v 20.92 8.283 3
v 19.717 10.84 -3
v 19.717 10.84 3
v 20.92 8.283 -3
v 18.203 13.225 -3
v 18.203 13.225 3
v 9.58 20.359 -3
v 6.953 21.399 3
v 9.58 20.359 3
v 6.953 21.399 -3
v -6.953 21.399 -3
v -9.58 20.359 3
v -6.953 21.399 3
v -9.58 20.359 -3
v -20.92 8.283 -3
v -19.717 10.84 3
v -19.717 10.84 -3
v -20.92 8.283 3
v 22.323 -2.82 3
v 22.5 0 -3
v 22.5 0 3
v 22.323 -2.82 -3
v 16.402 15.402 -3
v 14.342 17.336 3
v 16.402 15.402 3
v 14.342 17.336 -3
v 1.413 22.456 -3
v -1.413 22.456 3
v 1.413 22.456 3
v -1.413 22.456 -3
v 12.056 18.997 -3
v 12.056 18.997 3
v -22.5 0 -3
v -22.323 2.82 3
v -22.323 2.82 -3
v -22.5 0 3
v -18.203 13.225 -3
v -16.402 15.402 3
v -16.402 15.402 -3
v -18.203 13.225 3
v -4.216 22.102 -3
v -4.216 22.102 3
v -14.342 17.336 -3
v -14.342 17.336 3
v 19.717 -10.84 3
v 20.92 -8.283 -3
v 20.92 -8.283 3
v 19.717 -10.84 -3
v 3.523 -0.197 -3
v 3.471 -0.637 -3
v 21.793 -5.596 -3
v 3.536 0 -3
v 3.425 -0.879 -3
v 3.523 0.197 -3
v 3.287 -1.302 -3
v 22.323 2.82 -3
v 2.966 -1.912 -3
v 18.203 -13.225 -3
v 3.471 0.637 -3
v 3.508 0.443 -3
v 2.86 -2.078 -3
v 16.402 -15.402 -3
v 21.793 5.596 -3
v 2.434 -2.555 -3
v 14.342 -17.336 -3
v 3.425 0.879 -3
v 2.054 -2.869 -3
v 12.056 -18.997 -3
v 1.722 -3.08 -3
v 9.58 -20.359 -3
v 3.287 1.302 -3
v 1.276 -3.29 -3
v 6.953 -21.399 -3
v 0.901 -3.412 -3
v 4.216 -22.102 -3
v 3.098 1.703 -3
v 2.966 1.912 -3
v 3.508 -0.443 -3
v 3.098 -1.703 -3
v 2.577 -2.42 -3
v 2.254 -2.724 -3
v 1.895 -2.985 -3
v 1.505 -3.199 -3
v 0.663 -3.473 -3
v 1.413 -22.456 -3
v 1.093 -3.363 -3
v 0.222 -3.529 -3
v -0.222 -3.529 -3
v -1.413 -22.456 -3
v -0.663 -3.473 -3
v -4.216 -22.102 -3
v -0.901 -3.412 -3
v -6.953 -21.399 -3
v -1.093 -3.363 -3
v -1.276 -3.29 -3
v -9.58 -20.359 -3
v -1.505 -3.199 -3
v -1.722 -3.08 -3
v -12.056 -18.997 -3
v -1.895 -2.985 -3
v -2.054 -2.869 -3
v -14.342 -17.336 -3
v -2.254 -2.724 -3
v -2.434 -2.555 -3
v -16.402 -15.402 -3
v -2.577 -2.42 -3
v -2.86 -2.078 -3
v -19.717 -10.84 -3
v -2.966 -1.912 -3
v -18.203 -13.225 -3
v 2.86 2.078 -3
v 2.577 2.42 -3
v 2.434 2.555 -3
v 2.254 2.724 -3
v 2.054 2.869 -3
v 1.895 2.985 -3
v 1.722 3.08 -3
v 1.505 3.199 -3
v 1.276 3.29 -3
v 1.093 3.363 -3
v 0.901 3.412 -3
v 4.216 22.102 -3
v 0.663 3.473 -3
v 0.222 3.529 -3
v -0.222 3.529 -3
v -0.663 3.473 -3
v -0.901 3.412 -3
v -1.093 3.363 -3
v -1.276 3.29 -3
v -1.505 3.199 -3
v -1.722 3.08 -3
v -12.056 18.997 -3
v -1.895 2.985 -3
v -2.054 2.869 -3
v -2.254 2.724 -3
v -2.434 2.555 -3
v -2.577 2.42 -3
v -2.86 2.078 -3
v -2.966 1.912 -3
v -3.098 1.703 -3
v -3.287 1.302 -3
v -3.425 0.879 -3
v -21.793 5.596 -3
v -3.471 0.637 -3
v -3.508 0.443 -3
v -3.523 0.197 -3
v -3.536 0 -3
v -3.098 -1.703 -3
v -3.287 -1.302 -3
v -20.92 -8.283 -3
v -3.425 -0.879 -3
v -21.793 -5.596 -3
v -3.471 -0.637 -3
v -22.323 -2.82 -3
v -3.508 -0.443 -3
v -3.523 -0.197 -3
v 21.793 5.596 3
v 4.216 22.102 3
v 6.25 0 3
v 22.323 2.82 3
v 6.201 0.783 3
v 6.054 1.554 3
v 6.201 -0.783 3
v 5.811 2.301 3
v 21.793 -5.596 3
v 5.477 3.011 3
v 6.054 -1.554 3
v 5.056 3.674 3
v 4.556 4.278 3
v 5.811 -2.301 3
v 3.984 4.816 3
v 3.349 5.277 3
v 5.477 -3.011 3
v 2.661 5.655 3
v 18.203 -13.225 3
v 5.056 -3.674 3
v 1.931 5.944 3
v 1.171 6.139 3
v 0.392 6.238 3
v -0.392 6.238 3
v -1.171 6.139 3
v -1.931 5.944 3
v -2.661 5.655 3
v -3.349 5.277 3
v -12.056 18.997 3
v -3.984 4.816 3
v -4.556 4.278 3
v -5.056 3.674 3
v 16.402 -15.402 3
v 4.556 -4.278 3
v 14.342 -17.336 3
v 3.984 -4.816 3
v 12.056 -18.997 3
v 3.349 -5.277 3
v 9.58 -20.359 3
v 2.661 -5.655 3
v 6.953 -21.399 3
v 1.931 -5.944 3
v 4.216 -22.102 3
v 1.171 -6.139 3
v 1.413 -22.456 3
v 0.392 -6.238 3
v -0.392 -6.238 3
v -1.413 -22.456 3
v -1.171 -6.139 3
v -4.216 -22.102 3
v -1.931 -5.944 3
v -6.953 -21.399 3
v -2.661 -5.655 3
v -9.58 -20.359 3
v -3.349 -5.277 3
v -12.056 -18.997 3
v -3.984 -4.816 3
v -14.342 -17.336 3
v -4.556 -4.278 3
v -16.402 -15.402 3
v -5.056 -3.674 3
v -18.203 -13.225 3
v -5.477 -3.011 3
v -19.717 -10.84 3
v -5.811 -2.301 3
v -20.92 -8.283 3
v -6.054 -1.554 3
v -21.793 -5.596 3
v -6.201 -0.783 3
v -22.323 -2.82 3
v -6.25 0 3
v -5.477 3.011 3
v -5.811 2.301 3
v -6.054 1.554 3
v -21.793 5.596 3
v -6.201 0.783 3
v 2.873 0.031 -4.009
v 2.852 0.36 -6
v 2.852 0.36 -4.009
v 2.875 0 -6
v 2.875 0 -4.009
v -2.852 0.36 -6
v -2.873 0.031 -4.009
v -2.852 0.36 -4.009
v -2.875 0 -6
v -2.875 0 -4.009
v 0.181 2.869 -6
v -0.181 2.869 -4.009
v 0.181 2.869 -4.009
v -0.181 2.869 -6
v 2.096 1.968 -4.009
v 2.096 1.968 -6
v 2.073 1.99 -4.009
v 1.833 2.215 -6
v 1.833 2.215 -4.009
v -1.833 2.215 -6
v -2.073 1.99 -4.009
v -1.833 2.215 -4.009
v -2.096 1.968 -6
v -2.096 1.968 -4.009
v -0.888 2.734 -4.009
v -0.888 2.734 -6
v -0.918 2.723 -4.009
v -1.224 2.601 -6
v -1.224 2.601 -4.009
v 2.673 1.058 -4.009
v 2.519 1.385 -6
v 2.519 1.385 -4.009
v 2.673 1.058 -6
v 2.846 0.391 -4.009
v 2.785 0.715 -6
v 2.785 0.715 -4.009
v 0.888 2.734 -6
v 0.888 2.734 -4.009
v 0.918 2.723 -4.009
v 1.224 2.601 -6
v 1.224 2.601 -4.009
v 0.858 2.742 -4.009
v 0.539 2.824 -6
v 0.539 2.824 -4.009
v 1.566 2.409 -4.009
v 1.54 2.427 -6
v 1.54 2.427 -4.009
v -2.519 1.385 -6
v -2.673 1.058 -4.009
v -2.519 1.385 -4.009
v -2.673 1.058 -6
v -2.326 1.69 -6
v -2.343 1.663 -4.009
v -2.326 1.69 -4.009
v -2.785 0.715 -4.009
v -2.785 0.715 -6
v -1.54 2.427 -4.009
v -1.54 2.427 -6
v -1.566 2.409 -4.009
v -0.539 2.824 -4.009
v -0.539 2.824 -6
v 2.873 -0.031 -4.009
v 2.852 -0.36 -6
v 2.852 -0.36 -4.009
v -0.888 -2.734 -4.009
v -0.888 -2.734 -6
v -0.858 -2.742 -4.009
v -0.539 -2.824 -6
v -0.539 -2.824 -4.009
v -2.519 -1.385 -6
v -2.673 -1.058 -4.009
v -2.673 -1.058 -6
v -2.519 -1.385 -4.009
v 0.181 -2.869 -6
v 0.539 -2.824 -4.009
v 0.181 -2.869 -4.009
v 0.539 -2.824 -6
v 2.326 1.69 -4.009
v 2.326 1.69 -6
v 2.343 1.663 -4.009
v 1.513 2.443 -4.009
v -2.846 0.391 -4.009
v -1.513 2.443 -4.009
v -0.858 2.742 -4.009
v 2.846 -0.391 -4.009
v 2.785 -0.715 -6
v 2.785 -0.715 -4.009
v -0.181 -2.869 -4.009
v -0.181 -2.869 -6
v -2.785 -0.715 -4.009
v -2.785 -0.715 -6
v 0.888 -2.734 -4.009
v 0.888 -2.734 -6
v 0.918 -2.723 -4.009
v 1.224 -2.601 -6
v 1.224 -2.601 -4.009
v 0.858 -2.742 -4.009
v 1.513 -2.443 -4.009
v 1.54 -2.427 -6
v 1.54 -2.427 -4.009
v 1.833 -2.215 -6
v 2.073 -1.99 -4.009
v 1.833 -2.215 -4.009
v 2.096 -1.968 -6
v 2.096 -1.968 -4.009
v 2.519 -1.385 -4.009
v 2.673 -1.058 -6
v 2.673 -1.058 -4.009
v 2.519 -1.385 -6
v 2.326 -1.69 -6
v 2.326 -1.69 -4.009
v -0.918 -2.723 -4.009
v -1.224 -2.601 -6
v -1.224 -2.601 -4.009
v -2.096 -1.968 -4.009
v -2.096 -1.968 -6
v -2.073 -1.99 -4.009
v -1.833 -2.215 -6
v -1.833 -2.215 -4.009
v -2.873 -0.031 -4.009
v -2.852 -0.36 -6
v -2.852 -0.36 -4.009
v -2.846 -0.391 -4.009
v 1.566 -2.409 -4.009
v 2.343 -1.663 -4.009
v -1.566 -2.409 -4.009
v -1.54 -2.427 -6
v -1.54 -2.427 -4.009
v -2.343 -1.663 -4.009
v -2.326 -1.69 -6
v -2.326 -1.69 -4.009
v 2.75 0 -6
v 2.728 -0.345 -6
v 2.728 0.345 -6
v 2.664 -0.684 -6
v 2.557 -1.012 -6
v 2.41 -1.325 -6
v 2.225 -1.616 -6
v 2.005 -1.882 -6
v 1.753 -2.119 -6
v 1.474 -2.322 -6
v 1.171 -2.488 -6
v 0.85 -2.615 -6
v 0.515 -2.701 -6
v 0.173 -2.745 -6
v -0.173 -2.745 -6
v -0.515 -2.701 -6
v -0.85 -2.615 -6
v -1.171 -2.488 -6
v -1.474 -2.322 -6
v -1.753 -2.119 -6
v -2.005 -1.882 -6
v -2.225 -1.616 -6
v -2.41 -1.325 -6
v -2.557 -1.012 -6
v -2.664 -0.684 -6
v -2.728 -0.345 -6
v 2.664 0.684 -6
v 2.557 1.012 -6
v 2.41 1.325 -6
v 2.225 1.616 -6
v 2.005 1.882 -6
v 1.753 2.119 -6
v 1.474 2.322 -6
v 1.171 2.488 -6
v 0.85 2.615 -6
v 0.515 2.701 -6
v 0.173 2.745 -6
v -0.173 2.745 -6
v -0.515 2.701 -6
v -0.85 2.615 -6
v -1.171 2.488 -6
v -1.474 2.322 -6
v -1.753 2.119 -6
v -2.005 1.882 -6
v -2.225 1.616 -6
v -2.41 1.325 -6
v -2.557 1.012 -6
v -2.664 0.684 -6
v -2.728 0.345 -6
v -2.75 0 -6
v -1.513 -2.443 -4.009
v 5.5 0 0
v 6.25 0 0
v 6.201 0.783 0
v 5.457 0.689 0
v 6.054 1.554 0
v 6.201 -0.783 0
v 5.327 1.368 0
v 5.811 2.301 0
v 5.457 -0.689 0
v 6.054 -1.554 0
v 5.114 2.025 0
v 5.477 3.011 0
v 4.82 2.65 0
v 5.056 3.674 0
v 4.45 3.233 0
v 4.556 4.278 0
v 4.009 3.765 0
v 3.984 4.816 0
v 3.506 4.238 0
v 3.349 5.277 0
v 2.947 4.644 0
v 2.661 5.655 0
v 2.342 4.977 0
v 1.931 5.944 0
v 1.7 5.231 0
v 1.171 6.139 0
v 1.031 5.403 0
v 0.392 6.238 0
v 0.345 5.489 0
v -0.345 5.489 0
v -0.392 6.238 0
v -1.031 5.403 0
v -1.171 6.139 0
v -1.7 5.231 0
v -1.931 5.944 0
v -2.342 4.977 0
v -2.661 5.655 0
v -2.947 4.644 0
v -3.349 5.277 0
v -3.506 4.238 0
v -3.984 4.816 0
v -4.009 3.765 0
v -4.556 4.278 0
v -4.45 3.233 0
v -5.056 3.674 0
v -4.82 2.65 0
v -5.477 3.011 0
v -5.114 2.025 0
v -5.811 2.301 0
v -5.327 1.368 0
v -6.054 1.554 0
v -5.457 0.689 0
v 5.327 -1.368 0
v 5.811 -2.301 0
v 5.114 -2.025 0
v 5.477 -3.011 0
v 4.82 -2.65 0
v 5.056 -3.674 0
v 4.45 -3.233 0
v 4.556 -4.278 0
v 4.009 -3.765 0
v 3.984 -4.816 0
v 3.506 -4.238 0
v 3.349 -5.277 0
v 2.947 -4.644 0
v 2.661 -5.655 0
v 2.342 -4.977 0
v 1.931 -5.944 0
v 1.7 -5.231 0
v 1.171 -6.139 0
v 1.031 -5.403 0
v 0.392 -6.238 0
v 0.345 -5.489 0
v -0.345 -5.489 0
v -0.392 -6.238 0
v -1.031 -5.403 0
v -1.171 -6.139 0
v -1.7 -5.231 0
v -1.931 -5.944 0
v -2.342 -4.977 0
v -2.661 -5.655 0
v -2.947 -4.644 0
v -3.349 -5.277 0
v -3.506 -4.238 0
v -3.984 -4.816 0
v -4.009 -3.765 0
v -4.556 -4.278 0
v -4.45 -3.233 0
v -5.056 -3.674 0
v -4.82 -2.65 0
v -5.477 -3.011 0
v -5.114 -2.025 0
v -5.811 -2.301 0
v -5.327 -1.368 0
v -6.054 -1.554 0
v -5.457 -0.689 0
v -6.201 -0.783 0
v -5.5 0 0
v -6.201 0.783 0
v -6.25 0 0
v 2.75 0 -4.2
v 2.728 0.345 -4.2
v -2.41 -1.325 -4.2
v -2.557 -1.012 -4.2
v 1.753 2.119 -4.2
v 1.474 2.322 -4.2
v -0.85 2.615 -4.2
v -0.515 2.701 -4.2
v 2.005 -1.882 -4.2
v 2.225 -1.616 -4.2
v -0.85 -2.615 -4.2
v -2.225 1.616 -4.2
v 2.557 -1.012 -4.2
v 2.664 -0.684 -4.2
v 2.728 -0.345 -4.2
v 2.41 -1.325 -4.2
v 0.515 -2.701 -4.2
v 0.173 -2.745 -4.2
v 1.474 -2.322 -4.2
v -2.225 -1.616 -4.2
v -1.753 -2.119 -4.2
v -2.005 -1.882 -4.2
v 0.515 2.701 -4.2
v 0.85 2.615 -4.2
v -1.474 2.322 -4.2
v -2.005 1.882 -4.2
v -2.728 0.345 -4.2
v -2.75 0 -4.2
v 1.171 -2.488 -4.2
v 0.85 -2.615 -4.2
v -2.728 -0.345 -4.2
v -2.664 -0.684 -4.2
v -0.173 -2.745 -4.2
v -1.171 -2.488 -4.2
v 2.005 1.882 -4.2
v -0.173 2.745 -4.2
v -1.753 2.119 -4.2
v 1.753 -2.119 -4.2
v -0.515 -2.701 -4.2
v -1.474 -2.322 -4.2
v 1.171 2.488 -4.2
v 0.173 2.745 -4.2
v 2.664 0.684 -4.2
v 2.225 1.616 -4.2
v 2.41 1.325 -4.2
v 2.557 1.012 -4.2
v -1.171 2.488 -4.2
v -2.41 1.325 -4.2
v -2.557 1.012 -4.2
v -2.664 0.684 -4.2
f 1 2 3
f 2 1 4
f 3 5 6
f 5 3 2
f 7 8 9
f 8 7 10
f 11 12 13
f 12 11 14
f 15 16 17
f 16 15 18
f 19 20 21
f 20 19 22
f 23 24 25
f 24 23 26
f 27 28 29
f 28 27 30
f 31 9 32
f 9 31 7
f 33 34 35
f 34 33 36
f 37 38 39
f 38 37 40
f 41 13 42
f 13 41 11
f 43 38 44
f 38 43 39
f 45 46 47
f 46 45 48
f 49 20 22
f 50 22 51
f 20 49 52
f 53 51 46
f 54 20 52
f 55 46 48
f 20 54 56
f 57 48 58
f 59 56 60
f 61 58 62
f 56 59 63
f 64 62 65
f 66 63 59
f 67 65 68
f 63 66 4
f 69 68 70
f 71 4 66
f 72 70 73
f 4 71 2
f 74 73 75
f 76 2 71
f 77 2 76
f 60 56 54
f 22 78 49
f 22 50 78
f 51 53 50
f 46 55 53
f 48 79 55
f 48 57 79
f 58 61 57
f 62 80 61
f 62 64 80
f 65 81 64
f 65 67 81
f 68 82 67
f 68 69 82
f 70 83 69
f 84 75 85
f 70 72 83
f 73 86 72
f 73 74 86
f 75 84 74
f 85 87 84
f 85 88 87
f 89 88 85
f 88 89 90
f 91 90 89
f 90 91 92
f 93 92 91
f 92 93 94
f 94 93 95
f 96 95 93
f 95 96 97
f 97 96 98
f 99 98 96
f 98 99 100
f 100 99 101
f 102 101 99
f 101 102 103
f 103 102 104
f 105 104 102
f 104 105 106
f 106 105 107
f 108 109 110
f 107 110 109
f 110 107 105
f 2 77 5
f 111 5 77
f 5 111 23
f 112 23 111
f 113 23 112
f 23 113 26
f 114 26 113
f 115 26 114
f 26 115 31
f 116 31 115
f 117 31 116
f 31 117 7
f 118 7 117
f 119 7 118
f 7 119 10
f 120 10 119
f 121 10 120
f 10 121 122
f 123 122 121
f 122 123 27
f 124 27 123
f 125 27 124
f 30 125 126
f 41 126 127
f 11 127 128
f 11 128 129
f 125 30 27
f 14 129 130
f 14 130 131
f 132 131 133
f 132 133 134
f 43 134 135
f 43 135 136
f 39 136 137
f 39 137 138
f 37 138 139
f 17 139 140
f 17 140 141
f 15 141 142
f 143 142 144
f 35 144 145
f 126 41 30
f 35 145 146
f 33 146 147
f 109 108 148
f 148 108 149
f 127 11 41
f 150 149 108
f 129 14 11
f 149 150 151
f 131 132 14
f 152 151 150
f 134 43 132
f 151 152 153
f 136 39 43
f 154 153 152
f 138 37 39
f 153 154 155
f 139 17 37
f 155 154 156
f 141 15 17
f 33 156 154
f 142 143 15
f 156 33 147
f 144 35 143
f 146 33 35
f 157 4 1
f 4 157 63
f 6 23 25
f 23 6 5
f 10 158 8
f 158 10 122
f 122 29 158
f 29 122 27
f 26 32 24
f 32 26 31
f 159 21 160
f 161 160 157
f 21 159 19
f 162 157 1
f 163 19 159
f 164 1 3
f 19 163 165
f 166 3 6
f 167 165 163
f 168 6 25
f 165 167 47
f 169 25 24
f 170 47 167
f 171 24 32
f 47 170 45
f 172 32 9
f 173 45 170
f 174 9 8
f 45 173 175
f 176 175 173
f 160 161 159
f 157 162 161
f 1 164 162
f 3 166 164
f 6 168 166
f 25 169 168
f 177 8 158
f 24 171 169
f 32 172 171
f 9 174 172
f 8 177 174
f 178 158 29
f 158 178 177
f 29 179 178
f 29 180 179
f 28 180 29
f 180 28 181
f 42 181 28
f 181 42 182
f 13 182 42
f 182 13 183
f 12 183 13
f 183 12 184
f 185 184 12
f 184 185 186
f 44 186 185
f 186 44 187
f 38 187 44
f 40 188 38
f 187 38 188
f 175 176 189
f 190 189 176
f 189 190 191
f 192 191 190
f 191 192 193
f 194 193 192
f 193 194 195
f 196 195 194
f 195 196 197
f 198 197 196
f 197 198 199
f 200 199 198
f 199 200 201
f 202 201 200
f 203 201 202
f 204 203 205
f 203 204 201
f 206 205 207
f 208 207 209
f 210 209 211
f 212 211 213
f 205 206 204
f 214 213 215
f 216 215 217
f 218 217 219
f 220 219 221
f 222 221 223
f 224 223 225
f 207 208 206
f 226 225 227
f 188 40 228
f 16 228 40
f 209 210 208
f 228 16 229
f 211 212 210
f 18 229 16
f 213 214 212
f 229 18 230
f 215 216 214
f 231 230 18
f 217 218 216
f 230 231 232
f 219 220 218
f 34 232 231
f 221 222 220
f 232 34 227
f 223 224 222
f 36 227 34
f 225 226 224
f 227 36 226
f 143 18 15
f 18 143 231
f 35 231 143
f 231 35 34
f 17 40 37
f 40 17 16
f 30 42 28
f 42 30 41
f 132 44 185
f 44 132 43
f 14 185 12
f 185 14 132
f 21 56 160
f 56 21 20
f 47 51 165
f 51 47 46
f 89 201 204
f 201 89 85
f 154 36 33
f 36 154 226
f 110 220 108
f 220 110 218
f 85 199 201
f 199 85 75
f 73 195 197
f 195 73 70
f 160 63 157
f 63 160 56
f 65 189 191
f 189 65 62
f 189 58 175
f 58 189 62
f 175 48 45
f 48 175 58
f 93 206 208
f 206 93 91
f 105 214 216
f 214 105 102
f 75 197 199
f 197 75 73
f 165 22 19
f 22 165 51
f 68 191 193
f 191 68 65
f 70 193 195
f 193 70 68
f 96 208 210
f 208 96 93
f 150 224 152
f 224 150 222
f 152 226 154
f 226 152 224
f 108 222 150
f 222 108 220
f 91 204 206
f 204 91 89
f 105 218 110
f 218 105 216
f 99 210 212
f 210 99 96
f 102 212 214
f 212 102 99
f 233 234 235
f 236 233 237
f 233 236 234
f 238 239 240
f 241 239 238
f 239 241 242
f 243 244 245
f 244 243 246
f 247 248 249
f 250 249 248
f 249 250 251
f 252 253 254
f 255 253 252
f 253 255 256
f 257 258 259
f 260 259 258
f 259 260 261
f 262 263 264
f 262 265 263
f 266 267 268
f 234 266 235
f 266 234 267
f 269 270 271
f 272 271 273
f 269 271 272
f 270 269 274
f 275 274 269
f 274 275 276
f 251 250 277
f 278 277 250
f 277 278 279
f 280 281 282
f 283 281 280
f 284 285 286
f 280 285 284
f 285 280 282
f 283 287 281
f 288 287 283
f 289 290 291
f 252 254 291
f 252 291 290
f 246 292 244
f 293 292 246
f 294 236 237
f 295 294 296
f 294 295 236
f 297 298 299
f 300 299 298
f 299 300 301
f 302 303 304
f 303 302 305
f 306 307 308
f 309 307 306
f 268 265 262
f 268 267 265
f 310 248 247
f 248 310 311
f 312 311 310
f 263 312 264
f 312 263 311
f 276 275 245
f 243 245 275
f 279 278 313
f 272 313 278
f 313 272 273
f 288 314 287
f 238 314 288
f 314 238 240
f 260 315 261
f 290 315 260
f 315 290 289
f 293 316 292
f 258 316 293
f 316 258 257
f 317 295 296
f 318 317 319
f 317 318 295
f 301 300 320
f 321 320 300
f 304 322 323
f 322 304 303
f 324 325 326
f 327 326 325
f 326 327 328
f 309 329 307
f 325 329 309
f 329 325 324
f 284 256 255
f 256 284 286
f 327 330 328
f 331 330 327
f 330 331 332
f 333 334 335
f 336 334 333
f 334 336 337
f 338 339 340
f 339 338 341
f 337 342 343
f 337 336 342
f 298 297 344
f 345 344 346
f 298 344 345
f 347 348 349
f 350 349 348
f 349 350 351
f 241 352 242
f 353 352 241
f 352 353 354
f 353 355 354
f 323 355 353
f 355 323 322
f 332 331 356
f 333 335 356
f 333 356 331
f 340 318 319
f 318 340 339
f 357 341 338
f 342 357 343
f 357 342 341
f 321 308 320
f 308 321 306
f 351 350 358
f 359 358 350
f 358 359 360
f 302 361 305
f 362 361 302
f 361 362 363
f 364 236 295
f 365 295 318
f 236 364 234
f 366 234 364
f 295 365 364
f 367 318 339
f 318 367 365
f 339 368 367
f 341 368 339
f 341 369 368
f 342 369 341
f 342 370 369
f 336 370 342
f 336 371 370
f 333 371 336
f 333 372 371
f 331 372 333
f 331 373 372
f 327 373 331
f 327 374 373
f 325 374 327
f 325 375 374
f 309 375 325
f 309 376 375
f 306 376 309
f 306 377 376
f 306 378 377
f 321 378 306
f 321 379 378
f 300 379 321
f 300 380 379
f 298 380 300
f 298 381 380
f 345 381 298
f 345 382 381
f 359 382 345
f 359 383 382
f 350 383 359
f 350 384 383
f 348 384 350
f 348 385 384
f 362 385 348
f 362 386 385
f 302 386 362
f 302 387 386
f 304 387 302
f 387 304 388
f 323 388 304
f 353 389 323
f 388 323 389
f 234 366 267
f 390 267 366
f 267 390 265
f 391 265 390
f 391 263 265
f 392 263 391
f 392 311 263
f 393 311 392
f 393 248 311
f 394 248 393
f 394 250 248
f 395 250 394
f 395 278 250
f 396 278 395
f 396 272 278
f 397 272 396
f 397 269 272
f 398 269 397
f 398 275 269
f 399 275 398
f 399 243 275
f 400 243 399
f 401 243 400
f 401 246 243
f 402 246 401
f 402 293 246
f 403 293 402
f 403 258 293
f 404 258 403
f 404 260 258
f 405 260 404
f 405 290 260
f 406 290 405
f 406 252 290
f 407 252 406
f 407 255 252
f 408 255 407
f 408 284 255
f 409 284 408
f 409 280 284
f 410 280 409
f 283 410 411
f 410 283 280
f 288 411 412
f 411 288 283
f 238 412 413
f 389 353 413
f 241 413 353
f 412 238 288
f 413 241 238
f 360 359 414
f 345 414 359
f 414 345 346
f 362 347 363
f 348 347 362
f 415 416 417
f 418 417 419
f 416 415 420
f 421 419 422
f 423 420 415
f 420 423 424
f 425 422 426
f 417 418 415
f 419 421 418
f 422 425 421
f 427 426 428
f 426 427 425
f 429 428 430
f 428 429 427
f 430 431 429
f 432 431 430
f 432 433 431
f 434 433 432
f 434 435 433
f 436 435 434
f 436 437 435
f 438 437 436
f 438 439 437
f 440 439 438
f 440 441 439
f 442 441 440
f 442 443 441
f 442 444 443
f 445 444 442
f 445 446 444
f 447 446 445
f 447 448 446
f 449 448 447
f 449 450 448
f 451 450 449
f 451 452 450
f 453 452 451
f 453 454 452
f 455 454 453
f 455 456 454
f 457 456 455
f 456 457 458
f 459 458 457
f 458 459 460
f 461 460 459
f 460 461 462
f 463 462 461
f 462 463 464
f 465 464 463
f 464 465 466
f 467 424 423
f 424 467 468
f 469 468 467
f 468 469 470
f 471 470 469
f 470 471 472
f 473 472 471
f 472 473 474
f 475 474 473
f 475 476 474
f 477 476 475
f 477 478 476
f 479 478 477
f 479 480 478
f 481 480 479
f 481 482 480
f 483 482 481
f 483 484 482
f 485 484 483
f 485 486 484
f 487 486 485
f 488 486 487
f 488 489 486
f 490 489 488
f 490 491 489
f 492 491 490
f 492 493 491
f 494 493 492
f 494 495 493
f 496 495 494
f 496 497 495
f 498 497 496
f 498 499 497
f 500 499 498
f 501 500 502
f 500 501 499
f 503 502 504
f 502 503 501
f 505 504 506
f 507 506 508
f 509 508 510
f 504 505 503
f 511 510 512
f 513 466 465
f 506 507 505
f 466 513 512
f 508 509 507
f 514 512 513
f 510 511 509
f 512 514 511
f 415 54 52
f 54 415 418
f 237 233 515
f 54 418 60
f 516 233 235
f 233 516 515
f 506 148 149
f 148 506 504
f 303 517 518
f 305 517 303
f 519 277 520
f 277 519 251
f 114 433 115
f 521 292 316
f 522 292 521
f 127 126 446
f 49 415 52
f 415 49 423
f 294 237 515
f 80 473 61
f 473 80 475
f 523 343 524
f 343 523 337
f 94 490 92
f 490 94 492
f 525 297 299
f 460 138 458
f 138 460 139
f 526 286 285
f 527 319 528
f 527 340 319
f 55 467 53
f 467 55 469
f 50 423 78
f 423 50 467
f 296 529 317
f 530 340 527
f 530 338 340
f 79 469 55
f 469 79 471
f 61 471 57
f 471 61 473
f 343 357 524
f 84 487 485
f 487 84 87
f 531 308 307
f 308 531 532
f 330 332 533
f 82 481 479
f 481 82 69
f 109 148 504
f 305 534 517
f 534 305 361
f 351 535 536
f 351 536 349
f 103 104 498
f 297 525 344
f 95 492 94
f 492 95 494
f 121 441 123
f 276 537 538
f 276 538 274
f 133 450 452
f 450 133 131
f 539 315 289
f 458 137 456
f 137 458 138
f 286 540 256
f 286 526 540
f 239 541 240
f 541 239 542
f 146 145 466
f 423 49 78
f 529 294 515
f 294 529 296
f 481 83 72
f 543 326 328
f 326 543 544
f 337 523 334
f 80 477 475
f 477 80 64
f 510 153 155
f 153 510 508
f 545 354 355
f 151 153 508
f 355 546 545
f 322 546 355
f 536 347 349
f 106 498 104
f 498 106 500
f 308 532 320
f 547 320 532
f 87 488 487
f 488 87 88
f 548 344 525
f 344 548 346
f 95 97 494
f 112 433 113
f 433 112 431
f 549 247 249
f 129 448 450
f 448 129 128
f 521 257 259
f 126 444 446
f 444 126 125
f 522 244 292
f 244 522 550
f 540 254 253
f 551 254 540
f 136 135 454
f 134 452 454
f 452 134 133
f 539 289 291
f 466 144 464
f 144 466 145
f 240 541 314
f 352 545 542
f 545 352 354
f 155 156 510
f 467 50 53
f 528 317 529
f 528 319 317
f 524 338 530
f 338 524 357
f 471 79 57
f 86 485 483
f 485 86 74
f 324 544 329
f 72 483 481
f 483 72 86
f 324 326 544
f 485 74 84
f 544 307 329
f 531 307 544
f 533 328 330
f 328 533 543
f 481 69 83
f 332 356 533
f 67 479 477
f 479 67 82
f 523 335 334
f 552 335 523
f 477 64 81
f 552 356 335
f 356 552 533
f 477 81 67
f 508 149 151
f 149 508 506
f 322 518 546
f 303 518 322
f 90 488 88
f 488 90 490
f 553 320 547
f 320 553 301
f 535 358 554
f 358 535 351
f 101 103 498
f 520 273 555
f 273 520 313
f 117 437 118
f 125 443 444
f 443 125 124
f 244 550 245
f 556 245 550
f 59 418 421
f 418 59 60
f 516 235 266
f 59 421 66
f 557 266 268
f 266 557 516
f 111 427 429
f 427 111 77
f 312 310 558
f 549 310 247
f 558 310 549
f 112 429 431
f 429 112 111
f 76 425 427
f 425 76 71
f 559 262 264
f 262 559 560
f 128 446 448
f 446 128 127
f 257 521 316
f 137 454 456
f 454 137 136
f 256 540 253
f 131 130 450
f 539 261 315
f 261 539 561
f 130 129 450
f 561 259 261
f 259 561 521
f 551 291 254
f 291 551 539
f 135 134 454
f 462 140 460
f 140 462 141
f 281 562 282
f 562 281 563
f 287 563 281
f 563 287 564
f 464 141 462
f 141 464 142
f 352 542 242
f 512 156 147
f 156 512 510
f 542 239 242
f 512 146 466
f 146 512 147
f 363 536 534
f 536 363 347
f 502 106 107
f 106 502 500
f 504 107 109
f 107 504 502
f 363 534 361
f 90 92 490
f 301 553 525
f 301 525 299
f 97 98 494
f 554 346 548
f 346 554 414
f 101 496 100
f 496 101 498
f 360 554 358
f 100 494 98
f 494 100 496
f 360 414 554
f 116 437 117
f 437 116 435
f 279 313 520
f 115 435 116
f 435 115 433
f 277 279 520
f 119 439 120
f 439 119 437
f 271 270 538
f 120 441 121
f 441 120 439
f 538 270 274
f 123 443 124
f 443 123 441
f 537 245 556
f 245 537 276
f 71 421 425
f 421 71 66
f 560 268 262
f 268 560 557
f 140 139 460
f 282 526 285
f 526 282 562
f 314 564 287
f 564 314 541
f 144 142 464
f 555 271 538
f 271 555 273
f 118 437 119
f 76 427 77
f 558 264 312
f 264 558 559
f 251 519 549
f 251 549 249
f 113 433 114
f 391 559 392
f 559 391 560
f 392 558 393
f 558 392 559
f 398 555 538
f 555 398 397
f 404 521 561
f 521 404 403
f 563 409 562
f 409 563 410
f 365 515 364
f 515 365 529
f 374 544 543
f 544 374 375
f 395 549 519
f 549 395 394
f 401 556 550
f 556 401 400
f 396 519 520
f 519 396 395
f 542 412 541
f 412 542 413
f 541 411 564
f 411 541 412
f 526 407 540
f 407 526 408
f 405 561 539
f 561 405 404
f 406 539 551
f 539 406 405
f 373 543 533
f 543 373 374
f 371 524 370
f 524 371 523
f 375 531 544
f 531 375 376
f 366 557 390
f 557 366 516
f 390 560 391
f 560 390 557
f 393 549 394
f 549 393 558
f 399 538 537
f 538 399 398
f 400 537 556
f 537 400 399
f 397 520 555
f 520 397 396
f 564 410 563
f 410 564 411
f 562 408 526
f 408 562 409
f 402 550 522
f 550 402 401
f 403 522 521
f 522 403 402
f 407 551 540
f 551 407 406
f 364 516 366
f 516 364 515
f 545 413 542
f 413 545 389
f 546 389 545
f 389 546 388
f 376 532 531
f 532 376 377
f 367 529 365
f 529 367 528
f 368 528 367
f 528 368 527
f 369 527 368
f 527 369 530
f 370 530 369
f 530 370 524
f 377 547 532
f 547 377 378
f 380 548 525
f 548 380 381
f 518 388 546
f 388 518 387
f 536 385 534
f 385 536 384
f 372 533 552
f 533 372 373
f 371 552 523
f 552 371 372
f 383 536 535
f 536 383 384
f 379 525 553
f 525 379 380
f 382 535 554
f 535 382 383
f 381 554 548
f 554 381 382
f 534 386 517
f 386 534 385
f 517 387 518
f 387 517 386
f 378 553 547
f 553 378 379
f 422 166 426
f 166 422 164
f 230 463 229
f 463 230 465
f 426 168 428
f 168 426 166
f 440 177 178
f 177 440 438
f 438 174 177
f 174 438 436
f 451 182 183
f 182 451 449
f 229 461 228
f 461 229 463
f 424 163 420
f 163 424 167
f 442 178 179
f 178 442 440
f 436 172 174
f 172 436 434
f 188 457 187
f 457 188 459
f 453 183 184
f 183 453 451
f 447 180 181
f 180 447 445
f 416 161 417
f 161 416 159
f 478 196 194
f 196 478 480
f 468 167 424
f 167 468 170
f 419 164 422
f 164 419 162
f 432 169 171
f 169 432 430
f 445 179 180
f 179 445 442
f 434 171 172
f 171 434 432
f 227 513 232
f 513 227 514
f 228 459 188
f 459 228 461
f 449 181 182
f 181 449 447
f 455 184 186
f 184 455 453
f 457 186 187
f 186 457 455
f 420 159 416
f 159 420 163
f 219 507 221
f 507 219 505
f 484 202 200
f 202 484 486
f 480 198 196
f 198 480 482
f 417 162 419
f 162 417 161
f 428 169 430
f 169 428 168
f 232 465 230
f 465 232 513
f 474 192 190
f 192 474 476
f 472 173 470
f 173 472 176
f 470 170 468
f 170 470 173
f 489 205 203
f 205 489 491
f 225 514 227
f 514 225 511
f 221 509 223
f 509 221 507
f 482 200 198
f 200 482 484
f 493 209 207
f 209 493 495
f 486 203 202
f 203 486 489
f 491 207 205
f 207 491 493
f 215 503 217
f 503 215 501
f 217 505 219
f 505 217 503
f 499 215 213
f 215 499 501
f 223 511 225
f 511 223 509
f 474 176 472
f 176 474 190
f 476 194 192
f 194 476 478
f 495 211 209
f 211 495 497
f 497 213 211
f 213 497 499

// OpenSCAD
$fn = 50;


difference() {
	union() {
		translate(v = [0, 0, -3.0000000000]) {
			cylinder(h = 6, r = 22.5000000000);
		}
		#translate(v = [0, 0, -6.0000000000]) {
			cylinder(h = 6, r = 2.8750000000);
		}
	}
	union() {
		translate(v = [0, 0, 0]) {
			rotate(a = [0, 0, 0]) {
				difference() {
					union() {
						translate(v = [0, 0, -6.0000000000]) {
							cylinder(h = 6, r = 2.2500000000);
						}
						translate(v = [0, 0, -4.2000000000]) {
							cylinder(h = 4.2000000000, r1 = 2.7500000000, r2 = 5.5000000000);
						}
						translate(v = [0, 0, -6.0000000000]) {
							cylinder(h = 6, r = 2.7500000000);
						}
						translate(v = [0, 0, -6.0000000000]) {
							cylinder(h = 6, r = 2.2500000000);
						}
					}
					union();
				}
			}
		}
		#cylinder(h = 3, r = 6.2500000000);
	}
}
